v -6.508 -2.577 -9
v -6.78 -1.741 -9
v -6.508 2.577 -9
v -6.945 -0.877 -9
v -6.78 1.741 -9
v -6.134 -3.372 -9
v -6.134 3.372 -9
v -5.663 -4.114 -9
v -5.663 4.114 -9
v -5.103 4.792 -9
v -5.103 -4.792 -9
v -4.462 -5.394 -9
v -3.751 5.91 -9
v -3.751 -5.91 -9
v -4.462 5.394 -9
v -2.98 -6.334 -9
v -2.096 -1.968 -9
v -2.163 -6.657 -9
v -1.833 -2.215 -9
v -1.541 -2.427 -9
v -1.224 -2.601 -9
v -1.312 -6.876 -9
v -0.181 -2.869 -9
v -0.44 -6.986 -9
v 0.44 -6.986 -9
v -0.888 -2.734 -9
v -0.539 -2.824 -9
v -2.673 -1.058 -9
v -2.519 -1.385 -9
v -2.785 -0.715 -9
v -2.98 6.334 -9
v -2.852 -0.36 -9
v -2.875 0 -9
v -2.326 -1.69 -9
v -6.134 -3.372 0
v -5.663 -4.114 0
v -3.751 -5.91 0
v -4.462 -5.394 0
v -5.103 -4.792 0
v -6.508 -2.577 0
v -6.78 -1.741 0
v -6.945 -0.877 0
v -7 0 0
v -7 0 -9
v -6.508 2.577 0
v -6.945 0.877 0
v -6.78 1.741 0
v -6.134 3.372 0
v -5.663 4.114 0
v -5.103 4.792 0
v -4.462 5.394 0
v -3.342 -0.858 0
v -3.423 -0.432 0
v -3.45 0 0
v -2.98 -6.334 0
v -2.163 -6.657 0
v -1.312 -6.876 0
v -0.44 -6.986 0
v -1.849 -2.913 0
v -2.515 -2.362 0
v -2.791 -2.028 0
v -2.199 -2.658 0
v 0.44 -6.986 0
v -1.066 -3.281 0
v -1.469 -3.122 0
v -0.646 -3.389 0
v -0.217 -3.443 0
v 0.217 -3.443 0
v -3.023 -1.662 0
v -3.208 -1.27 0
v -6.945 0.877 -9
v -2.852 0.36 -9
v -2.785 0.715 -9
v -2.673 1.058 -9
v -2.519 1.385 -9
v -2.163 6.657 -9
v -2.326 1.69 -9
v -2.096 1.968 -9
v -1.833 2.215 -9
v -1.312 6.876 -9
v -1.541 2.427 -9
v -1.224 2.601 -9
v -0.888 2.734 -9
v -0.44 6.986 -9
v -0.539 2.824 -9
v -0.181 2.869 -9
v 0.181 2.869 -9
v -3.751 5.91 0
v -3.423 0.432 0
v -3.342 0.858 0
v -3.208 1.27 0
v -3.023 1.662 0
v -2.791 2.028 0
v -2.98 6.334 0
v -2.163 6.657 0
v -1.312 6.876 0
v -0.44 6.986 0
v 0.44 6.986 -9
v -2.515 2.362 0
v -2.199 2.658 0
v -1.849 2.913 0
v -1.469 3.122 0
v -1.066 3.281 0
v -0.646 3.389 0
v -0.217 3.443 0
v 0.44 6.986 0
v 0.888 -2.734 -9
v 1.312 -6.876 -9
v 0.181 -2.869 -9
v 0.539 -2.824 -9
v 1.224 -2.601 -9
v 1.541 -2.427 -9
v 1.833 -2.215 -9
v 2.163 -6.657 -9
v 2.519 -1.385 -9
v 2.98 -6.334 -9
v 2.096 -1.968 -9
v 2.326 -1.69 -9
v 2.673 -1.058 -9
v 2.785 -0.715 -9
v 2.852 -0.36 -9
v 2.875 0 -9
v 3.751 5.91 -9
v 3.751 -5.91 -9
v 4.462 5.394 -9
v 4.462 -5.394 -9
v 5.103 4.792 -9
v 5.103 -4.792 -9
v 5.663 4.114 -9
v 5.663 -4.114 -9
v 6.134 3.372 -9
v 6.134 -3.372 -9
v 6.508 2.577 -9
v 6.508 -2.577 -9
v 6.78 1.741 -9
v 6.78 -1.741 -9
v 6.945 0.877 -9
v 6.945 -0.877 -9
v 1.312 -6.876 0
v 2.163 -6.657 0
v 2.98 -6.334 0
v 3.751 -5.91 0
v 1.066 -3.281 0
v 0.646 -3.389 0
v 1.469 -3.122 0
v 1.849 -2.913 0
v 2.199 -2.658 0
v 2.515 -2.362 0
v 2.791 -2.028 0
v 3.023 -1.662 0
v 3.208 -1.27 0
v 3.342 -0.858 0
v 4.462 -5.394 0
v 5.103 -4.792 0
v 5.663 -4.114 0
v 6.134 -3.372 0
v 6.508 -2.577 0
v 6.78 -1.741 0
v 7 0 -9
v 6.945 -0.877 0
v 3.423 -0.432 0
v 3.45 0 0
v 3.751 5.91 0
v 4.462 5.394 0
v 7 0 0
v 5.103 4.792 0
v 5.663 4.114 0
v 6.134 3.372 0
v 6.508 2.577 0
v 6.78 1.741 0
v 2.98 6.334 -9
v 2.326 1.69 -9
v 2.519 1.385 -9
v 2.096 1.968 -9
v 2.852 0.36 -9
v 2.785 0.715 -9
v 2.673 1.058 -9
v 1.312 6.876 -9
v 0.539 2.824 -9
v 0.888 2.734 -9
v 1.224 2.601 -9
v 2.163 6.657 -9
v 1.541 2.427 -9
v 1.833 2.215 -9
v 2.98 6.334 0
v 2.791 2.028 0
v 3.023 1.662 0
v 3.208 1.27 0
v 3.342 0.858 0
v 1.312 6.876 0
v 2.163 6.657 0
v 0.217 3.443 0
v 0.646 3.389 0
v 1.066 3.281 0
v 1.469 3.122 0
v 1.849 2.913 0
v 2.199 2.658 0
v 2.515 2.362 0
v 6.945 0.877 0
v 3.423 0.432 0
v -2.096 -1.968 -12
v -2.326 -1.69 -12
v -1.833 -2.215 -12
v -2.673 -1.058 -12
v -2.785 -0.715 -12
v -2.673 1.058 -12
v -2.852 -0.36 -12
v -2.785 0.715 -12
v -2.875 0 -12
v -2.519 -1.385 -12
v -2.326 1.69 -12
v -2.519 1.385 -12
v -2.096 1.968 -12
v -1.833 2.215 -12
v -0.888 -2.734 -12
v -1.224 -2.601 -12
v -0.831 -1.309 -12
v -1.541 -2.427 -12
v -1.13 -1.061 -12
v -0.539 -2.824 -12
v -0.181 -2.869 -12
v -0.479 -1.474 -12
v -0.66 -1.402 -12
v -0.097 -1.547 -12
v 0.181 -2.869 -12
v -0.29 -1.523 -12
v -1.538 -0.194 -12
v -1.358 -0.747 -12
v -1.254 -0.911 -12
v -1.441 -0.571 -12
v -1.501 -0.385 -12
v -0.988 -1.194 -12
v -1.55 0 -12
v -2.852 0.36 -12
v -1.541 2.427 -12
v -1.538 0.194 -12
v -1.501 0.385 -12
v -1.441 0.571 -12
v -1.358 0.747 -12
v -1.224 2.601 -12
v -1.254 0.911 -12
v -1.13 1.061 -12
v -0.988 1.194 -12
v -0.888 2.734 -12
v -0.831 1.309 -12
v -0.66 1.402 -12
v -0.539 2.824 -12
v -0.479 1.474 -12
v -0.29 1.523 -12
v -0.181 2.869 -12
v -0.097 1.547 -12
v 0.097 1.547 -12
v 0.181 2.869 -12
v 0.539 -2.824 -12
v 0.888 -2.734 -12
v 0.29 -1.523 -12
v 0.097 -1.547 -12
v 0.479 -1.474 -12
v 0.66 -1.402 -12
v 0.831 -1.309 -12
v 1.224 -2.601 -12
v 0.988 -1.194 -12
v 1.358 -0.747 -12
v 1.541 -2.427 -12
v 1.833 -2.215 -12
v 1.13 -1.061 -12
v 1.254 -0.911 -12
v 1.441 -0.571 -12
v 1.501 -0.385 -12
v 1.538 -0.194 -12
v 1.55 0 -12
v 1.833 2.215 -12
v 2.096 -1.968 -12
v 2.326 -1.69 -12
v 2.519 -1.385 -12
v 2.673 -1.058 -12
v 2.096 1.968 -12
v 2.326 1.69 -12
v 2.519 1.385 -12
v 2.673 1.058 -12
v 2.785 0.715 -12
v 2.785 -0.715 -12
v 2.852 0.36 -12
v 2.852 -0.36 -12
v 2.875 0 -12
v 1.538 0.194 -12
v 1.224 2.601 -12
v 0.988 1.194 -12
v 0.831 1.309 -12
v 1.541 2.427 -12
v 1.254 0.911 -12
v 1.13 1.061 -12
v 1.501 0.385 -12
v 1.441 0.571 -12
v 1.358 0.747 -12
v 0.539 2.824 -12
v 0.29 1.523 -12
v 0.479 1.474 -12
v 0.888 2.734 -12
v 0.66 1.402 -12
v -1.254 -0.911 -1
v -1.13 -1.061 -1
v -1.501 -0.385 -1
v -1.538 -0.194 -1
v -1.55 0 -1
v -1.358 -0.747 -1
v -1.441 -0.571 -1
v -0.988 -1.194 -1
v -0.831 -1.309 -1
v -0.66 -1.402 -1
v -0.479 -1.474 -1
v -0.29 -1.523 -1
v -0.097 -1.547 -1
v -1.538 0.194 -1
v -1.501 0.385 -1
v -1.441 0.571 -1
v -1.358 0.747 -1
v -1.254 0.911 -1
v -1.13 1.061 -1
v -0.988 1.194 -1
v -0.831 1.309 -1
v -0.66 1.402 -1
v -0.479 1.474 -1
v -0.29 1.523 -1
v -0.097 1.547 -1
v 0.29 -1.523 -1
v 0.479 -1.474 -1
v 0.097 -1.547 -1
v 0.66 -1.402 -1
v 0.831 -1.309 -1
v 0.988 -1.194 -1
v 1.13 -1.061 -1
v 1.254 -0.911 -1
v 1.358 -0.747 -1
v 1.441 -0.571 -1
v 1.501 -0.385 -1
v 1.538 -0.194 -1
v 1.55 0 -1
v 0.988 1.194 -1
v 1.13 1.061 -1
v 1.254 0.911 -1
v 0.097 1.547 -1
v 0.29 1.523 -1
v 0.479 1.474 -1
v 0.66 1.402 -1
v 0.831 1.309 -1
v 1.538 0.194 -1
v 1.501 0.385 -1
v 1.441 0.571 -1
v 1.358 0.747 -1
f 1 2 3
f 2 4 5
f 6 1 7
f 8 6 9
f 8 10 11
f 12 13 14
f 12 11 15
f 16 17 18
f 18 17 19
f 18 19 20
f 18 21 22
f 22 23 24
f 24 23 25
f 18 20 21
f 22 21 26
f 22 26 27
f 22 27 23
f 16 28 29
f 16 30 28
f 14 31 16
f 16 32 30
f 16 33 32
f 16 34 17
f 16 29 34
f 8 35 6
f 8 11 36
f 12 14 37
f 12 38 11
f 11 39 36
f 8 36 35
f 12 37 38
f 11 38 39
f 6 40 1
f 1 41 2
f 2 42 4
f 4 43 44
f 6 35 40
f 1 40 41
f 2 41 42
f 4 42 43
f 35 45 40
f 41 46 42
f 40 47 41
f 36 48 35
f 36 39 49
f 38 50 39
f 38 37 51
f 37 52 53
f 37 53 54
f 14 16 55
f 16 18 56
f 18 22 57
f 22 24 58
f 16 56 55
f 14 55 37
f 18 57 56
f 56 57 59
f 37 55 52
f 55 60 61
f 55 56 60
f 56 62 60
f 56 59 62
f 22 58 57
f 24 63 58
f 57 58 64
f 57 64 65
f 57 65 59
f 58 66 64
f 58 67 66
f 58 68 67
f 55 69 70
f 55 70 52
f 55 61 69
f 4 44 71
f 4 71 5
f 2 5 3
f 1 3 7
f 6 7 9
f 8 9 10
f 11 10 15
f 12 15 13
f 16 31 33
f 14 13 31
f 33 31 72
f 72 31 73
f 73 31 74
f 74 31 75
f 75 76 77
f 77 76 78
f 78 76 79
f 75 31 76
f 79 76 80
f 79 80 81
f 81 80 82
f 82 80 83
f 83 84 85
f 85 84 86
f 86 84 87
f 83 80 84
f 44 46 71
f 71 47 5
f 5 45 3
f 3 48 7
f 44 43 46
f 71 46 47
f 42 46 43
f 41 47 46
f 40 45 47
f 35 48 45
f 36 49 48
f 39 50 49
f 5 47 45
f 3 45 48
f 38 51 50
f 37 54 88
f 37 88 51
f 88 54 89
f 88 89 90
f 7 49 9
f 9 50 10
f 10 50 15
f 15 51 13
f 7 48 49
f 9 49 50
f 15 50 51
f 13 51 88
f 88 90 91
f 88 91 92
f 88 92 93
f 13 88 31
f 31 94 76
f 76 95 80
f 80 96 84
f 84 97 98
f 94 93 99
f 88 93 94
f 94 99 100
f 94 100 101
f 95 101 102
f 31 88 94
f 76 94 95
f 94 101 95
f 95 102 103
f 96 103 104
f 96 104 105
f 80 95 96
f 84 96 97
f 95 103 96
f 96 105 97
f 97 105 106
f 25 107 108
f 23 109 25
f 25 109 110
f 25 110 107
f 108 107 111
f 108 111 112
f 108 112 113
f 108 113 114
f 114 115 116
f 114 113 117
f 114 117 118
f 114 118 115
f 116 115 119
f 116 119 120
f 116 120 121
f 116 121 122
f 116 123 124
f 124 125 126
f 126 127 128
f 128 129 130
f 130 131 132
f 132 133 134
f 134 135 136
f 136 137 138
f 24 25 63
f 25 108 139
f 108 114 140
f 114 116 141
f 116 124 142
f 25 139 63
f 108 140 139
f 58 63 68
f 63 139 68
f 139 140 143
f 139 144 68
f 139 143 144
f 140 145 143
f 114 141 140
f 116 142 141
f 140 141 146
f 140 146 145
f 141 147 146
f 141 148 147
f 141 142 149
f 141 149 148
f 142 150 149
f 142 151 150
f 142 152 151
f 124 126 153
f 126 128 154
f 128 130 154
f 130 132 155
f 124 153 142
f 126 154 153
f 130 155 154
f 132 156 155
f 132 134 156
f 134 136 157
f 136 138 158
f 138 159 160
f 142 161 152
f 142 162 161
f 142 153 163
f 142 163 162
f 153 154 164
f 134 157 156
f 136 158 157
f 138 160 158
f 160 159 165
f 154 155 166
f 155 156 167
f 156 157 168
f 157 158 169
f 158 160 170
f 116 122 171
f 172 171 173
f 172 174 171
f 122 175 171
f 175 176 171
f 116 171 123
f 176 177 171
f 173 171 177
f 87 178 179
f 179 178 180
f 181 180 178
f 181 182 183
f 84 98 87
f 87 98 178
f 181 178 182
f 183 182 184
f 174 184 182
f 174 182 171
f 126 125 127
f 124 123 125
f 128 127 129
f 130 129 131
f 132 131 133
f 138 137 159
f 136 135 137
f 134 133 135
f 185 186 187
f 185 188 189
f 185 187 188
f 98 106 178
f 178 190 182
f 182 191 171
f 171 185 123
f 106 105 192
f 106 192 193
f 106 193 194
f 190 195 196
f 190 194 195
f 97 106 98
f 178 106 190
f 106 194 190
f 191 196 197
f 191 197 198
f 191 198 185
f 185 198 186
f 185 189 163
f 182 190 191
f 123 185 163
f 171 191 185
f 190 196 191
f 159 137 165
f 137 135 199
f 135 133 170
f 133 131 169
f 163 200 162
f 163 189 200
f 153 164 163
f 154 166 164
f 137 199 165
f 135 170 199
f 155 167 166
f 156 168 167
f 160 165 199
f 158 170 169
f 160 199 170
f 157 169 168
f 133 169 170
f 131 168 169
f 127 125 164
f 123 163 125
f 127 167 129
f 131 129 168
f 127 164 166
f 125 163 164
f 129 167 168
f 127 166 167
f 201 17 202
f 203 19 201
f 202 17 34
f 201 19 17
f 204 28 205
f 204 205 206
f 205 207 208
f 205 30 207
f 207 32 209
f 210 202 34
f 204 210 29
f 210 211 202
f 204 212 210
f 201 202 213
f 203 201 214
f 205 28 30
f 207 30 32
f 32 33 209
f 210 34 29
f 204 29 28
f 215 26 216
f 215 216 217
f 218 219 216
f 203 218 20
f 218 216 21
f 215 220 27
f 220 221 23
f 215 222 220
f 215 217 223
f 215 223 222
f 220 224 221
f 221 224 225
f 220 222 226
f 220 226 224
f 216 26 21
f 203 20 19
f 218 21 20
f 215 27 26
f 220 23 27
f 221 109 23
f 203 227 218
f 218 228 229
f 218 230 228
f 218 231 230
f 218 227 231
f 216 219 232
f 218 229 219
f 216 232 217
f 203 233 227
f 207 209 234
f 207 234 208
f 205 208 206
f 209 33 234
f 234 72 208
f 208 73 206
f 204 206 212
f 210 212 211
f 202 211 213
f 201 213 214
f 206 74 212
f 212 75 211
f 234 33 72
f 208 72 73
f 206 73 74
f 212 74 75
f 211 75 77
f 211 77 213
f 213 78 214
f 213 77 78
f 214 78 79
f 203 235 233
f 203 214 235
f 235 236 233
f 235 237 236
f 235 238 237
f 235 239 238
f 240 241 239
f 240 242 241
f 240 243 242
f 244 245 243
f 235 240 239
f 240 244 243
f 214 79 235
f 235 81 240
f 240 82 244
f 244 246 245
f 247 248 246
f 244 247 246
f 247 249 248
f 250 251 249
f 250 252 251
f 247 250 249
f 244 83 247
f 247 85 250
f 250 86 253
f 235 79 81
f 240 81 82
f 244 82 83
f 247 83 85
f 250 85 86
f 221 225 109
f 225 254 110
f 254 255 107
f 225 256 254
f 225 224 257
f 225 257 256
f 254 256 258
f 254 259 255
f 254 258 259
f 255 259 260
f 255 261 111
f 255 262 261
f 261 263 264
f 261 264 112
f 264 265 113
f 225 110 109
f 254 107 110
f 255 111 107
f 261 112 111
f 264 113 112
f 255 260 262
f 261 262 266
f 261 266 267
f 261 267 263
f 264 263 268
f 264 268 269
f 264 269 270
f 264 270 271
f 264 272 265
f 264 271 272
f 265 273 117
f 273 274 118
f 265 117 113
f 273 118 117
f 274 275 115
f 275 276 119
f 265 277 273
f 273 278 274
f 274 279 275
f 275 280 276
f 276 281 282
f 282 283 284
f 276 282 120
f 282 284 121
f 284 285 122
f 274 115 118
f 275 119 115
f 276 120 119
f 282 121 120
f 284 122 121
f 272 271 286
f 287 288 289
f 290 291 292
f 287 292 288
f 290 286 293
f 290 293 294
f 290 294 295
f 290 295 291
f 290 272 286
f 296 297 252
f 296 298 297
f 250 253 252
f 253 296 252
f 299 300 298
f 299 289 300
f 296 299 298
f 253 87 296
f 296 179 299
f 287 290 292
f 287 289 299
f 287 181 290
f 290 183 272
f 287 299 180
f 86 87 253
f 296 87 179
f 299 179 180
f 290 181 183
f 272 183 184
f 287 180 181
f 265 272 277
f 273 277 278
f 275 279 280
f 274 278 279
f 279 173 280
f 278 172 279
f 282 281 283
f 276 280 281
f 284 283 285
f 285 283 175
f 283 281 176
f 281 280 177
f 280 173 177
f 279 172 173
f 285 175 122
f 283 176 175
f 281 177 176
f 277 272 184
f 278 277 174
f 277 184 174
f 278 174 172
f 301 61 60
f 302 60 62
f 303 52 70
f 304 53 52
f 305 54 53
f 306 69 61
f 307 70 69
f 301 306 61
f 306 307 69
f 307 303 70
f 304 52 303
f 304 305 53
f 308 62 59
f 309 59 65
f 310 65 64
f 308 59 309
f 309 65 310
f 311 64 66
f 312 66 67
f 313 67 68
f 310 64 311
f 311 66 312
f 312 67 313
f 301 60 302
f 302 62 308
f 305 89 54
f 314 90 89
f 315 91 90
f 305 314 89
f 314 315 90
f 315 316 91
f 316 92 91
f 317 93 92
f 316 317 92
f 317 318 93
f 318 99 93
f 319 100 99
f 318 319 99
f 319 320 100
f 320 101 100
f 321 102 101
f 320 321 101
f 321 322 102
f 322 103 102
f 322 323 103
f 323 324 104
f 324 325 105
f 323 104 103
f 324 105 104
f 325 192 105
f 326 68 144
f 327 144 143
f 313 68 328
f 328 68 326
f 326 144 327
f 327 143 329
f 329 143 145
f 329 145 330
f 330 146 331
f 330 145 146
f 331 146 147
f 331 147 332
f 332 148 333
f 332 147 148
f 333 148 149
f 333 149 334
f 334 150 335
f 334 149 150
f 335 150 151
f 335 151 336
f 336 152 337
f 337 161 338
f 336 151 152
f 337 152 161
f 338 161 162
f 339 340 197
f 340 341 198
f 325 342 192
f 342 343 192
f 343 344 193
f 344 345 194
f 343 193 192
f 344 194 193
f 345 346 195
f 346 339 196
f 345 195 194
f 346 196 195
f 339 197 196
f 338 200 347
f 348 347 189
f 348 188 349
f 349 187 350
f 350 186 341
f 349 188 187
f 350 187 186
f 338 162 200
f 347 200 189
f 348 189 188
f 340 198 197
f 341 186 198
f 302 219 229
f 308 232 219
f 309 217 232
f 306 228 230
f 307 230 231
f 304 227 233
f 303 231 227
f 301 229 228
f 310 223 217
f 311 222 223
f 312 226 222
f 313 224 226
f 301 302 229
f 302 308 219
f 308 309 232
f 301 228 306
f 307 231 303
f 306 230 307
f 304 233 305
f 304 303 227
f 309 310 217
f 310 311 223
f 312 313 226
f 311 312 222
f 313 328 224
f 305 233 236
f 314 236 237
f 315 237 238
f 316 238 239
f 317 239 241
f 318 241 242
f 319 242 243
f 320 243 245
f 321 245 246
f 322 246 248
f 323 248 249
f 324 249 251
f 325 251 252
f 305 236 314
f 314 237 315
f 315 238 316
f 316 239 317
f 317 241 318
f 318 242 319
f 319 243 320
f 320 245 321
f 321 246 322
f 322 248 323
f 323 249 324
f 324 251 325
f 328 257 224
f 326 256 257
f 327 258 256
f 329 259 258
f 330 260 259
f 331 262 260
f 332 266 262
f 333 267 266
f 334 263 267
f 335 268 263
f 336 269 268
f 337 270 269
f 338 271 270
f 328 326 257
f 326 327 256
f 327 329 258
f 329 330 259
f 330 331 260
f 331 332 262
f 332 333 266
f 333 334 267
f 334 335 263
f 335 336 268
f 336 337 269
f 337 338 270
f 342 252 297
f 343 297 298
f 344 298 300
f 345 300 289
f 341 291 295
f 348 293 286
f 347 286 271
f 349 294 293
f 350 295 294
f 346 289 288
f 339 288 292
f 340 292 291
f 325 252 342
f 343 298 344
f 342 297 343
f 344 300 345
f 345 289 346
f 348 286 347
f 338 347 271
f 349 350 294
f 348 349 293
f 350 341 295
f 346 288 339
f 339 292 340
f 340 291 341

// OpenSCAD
$fn = 50;

difference() {
	union() {
		translate(v = [0, 0, -9.0]) {
			cylinder(h = 9, r = 7.0);
		}
		#translate(v = [0, 0, -12.0]) {
			cylinder(h = 12, r = 2.875);
		}
	}
	union() {
		translate(v = [0, 0, 0]) {
			rotate(a = [0, 0, 0]) {
				difference() {
					union() {
						translate(v = [0, 0, -12.0]) {
							cylinder(h = 12, r = 1.25);
						}
						translate(v = [0, 0, -1.0]) {
							cylinder(h = 1.0, r1 = 1.55, r2 = 3.45);
						}
						translate(v = [0, 0, -12.0]) {
							cylinder(h = 12, r = 1.55);
						}
						translate(v = [0, 0, -12.0]) {
							cylinder(h = 12, r = 1.25);
						}
					}
					union();
				}
			}
		}
	}
}
